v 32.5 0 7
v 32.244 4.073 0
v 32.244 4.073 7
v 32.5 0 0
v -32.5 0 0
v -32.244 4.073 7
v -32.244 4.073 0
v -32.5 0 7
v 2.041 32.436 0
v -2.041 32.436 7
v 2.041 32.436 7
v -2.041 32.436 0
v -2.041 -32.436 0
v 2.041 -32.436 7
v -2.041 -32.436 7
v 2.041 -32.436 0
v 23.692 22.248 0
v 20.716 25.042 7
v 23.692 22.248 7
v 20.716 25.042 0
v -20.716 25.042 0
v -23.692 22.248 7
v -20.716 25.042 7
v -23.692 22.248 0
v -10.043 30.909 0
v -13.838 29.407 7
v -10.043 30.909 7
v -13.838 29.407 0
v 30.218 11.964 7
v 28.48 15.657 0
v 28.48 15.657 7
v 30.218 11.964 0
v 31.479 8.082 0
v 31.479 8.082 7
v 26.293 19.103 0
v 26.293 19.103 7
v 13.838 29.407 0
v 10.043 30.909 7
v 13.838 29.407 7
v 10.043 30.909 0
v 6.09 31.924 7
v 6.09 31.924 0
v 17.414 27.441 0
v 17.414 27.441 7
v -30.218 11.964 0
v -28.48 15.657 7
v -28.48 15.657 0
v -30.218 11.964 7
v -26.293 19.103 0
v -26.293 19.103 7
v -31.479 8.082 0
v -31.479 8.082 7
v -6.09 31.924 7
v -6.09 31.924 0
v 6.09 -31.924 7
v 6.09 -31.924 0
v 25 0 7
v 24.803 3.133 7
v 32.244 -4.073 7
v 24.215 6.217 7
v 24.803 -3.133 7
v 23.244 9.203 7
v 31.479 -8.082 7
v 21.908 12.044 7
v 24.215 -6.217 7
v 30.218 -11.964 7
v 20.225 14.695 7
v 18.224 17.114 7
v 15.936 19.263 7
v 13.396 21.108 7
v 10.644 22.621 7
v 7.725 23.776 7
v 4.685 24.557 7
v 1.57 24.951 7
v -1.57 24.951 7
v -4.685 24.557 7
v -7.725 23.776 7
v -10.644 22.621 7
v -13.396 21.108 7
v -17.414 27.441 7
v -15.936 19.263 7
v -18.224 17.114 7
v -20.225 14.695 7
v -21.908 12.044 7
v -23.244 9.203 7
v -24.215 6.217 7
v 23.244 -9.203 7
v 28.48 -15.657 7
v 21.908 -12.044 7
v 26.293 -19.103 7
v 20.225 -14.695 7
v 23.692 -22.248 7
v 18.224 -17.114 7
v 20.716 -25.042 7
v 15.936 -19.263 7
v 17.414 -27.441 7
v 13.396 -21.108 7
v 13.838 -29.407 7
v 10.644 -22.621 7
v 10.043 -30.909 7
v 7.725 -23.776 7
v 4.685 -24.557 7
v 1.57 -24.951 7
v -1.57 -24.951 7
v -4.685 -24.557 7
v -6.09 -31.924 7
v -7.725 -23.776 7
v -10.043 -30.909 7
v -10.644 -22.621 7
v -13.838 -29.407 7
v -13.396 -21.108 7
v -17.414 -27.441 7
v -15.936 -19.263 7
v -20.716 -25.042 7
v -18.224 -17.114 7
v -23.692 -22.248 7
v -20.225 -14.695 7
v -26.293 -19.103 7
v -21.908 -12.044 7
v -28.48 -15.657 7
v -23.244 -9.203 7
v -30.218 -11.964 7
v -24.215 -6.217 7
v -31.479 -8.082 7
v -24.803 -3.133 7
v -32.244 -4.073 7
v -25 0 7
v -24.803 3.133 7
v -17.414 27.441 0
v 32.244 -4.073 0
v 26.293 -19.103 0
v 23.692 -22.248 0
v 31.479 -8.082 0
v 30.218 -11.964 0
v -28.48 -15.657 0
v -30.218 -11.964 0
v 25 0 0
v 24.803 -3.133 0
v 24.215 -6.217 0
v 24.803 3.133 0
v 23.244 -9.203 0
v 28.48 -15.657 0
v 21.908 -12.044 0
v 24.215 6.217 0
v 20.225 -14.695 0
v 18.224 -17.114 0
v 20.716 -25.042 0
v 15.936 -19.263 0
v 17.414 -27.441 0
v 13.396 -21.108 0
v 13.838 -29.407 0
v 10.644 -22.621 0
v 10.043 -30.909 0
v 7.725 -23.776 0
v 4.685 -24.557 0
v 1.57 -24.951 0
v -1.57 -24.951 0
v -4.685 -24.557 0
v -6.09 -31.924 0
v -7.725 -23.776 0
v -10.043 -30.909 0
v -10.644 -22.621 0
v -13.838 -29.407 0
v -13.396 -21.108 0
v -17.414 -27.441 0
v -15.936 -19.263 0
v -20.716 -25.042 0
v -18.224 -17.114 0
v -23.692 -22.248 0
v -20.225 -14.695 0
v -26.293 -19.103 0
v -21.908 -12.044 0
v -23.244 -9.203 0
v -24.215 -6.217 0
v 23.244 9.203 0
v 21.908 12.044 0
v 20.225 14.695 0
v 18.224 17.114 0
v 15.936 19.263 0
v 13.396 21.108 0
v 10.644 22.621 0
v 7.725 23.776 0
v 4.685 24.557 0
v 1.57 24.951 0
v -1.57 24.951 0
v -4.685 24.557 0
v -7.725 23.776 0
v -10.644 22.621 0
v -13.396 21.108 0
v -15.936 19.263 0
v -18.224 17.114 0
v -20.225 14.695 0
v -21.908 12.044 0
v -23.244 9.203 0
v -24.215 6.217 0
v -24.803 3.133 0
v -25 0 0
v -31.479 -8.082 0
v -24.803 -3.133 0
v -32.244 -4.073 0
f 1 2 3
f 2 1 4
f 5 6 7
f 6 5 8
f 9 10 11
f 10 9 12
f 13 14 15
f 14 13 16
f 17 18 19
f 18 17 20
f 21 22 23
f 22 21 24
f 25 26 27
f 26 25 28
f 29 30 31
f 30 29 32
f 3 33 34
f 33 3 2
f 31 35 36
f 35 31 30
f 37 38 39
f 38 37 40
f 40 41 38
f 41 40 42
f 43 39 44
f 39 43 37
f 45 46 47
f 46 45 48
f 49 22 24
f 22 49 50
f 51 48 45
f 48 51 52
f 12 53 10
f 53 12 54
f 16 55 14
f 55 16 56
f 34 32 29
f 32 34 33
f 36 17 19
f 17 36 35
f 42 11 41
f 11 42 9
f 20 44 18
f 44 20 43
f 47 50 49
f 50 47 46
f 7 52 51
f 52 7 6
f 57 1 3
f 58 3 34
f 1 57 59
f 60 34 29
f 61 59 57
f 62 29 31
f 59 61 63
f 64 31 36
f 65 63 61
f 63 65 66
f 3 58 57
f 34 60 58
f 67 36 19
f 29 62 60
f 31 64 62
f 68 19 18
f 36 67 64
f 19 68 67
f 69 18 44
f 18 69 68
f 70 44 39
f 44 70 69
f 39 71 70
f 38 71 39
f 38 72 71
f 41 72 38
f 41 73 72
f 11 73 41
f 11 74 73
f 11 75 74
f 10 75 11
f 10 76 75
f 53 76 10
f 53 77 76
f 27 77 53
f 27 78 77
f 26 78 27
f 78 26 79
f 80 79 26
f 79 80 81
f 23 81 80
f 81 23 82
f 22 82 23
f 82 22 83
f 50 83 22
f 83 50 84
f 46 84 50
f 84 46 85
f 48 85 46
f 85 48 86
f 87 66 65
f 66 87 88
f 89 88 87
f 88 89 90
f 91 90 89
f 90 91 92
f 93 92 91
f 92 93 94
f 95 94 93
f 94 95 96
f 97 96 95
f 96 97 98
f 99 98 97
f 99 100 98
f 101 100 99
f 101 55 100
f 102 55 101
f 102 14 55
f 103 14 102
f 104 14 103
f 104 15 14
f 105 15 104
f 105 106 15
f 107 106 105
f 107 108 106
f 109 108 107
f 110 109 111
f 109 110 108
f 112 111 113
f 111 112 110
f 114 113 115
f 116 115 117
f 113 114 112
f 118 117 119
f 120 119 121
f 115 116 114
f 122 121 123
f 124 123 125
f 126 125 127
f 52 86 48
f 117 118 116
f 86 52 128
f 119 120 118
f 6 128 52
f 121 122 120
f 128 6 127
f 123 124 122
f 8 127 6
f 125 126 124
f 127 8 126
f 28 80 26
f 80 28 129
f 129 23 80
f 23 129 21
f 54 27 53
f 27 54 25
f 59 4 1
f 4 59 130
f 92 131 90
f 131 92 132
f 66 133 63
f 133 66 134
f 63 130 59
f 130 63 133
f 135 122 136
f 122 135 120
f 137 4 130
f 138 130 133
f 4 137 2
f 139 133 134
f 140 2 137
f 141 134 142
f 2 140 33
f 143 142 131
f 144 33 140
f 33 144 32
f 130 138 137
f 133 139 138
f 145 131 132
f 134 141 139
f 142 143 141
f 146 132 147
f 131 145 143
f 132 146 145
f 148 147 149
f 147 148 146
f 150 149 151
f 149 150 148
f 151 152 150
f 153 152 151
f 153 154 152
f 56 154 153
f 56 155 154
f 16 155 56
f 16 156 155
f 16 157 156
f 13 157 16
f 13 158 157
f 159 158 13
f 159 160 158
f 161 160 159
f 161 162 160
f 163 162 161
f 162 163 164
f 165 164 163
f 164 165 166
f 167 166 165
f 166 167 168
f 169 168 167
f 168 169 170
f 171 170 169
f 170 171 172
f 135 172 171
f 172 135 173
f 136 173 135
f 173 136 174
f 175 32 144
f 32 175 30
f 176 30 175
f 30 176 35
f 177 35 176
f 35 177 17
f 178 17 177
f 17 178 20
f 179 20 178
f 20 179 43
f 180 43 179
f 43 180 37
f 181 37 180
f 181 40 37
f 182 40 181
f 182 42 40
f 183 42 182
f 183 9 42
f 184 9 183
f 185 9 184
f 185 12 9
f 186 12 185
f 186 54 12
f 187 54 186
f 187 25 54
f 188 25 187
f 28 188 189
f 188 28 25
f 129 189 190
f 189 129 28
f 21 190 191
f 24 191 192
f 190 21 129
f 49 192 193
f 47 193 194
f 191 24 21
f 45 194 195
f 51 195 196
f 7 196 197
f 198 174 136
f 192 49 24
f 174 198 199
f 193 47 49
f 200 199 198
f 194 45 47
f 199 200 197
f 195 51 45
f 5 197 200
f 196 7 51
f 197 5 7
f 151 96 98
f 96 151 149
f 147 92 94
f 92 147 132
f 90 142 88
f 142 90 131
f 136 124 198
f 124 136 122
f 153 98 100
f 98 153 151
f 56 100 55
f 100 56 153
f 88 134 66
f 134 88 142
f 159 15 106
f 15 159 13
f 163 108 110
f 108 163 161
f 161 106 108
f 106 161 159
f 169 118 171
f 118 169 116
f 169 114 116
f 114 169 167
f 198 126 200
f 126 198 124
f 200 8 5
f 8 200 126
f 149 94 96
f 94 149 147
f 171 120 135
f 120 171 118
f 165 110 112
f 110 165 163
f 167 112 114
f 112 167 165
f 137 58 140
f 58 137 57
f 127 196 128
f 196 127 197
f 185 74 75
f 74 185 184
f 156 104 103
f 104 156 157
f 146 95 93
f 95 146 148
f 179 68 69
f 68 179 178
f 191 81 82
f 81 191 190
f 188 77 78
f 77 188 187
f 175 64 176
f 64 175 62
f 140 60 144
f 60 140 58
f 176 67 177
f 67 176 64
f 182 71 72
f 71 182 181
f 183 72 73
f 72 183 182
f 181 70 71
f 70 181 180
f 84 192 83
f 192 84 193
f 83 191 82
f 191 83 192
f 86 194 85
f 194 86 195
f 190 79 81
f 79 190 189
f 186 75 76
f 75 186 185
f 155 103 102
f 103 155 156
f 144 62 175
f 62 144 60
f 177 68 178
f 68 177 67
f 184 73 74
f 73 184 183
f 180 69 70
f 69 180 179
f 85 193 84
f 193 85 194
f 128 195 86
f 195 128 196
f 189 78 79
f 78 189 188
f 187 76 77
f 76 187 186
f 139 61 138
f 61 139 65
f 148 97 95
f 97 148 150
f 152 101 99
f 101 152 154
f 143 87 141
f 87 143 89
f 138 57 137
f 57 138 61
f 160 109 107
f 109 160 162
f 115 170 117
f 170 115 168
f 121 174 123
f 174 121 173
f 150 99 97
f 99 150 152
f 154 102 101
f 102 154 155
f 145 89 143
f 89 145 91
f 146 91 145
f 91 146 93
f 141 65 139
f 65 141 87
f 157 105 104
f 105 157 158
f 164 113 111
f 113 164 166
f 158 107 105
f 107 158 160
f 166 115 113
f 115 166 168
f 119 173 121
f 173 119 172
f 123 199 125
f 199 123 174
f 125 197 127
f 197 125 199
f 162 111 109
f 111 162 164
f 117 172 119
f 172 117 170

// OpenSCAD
$fn = 50;


difference() {
	union() {
		cylinder(h = 7, r = 32.5000000000);
	}
	union() {
		cylinder(h = 7, r = 25.0000000000);
	}
}
